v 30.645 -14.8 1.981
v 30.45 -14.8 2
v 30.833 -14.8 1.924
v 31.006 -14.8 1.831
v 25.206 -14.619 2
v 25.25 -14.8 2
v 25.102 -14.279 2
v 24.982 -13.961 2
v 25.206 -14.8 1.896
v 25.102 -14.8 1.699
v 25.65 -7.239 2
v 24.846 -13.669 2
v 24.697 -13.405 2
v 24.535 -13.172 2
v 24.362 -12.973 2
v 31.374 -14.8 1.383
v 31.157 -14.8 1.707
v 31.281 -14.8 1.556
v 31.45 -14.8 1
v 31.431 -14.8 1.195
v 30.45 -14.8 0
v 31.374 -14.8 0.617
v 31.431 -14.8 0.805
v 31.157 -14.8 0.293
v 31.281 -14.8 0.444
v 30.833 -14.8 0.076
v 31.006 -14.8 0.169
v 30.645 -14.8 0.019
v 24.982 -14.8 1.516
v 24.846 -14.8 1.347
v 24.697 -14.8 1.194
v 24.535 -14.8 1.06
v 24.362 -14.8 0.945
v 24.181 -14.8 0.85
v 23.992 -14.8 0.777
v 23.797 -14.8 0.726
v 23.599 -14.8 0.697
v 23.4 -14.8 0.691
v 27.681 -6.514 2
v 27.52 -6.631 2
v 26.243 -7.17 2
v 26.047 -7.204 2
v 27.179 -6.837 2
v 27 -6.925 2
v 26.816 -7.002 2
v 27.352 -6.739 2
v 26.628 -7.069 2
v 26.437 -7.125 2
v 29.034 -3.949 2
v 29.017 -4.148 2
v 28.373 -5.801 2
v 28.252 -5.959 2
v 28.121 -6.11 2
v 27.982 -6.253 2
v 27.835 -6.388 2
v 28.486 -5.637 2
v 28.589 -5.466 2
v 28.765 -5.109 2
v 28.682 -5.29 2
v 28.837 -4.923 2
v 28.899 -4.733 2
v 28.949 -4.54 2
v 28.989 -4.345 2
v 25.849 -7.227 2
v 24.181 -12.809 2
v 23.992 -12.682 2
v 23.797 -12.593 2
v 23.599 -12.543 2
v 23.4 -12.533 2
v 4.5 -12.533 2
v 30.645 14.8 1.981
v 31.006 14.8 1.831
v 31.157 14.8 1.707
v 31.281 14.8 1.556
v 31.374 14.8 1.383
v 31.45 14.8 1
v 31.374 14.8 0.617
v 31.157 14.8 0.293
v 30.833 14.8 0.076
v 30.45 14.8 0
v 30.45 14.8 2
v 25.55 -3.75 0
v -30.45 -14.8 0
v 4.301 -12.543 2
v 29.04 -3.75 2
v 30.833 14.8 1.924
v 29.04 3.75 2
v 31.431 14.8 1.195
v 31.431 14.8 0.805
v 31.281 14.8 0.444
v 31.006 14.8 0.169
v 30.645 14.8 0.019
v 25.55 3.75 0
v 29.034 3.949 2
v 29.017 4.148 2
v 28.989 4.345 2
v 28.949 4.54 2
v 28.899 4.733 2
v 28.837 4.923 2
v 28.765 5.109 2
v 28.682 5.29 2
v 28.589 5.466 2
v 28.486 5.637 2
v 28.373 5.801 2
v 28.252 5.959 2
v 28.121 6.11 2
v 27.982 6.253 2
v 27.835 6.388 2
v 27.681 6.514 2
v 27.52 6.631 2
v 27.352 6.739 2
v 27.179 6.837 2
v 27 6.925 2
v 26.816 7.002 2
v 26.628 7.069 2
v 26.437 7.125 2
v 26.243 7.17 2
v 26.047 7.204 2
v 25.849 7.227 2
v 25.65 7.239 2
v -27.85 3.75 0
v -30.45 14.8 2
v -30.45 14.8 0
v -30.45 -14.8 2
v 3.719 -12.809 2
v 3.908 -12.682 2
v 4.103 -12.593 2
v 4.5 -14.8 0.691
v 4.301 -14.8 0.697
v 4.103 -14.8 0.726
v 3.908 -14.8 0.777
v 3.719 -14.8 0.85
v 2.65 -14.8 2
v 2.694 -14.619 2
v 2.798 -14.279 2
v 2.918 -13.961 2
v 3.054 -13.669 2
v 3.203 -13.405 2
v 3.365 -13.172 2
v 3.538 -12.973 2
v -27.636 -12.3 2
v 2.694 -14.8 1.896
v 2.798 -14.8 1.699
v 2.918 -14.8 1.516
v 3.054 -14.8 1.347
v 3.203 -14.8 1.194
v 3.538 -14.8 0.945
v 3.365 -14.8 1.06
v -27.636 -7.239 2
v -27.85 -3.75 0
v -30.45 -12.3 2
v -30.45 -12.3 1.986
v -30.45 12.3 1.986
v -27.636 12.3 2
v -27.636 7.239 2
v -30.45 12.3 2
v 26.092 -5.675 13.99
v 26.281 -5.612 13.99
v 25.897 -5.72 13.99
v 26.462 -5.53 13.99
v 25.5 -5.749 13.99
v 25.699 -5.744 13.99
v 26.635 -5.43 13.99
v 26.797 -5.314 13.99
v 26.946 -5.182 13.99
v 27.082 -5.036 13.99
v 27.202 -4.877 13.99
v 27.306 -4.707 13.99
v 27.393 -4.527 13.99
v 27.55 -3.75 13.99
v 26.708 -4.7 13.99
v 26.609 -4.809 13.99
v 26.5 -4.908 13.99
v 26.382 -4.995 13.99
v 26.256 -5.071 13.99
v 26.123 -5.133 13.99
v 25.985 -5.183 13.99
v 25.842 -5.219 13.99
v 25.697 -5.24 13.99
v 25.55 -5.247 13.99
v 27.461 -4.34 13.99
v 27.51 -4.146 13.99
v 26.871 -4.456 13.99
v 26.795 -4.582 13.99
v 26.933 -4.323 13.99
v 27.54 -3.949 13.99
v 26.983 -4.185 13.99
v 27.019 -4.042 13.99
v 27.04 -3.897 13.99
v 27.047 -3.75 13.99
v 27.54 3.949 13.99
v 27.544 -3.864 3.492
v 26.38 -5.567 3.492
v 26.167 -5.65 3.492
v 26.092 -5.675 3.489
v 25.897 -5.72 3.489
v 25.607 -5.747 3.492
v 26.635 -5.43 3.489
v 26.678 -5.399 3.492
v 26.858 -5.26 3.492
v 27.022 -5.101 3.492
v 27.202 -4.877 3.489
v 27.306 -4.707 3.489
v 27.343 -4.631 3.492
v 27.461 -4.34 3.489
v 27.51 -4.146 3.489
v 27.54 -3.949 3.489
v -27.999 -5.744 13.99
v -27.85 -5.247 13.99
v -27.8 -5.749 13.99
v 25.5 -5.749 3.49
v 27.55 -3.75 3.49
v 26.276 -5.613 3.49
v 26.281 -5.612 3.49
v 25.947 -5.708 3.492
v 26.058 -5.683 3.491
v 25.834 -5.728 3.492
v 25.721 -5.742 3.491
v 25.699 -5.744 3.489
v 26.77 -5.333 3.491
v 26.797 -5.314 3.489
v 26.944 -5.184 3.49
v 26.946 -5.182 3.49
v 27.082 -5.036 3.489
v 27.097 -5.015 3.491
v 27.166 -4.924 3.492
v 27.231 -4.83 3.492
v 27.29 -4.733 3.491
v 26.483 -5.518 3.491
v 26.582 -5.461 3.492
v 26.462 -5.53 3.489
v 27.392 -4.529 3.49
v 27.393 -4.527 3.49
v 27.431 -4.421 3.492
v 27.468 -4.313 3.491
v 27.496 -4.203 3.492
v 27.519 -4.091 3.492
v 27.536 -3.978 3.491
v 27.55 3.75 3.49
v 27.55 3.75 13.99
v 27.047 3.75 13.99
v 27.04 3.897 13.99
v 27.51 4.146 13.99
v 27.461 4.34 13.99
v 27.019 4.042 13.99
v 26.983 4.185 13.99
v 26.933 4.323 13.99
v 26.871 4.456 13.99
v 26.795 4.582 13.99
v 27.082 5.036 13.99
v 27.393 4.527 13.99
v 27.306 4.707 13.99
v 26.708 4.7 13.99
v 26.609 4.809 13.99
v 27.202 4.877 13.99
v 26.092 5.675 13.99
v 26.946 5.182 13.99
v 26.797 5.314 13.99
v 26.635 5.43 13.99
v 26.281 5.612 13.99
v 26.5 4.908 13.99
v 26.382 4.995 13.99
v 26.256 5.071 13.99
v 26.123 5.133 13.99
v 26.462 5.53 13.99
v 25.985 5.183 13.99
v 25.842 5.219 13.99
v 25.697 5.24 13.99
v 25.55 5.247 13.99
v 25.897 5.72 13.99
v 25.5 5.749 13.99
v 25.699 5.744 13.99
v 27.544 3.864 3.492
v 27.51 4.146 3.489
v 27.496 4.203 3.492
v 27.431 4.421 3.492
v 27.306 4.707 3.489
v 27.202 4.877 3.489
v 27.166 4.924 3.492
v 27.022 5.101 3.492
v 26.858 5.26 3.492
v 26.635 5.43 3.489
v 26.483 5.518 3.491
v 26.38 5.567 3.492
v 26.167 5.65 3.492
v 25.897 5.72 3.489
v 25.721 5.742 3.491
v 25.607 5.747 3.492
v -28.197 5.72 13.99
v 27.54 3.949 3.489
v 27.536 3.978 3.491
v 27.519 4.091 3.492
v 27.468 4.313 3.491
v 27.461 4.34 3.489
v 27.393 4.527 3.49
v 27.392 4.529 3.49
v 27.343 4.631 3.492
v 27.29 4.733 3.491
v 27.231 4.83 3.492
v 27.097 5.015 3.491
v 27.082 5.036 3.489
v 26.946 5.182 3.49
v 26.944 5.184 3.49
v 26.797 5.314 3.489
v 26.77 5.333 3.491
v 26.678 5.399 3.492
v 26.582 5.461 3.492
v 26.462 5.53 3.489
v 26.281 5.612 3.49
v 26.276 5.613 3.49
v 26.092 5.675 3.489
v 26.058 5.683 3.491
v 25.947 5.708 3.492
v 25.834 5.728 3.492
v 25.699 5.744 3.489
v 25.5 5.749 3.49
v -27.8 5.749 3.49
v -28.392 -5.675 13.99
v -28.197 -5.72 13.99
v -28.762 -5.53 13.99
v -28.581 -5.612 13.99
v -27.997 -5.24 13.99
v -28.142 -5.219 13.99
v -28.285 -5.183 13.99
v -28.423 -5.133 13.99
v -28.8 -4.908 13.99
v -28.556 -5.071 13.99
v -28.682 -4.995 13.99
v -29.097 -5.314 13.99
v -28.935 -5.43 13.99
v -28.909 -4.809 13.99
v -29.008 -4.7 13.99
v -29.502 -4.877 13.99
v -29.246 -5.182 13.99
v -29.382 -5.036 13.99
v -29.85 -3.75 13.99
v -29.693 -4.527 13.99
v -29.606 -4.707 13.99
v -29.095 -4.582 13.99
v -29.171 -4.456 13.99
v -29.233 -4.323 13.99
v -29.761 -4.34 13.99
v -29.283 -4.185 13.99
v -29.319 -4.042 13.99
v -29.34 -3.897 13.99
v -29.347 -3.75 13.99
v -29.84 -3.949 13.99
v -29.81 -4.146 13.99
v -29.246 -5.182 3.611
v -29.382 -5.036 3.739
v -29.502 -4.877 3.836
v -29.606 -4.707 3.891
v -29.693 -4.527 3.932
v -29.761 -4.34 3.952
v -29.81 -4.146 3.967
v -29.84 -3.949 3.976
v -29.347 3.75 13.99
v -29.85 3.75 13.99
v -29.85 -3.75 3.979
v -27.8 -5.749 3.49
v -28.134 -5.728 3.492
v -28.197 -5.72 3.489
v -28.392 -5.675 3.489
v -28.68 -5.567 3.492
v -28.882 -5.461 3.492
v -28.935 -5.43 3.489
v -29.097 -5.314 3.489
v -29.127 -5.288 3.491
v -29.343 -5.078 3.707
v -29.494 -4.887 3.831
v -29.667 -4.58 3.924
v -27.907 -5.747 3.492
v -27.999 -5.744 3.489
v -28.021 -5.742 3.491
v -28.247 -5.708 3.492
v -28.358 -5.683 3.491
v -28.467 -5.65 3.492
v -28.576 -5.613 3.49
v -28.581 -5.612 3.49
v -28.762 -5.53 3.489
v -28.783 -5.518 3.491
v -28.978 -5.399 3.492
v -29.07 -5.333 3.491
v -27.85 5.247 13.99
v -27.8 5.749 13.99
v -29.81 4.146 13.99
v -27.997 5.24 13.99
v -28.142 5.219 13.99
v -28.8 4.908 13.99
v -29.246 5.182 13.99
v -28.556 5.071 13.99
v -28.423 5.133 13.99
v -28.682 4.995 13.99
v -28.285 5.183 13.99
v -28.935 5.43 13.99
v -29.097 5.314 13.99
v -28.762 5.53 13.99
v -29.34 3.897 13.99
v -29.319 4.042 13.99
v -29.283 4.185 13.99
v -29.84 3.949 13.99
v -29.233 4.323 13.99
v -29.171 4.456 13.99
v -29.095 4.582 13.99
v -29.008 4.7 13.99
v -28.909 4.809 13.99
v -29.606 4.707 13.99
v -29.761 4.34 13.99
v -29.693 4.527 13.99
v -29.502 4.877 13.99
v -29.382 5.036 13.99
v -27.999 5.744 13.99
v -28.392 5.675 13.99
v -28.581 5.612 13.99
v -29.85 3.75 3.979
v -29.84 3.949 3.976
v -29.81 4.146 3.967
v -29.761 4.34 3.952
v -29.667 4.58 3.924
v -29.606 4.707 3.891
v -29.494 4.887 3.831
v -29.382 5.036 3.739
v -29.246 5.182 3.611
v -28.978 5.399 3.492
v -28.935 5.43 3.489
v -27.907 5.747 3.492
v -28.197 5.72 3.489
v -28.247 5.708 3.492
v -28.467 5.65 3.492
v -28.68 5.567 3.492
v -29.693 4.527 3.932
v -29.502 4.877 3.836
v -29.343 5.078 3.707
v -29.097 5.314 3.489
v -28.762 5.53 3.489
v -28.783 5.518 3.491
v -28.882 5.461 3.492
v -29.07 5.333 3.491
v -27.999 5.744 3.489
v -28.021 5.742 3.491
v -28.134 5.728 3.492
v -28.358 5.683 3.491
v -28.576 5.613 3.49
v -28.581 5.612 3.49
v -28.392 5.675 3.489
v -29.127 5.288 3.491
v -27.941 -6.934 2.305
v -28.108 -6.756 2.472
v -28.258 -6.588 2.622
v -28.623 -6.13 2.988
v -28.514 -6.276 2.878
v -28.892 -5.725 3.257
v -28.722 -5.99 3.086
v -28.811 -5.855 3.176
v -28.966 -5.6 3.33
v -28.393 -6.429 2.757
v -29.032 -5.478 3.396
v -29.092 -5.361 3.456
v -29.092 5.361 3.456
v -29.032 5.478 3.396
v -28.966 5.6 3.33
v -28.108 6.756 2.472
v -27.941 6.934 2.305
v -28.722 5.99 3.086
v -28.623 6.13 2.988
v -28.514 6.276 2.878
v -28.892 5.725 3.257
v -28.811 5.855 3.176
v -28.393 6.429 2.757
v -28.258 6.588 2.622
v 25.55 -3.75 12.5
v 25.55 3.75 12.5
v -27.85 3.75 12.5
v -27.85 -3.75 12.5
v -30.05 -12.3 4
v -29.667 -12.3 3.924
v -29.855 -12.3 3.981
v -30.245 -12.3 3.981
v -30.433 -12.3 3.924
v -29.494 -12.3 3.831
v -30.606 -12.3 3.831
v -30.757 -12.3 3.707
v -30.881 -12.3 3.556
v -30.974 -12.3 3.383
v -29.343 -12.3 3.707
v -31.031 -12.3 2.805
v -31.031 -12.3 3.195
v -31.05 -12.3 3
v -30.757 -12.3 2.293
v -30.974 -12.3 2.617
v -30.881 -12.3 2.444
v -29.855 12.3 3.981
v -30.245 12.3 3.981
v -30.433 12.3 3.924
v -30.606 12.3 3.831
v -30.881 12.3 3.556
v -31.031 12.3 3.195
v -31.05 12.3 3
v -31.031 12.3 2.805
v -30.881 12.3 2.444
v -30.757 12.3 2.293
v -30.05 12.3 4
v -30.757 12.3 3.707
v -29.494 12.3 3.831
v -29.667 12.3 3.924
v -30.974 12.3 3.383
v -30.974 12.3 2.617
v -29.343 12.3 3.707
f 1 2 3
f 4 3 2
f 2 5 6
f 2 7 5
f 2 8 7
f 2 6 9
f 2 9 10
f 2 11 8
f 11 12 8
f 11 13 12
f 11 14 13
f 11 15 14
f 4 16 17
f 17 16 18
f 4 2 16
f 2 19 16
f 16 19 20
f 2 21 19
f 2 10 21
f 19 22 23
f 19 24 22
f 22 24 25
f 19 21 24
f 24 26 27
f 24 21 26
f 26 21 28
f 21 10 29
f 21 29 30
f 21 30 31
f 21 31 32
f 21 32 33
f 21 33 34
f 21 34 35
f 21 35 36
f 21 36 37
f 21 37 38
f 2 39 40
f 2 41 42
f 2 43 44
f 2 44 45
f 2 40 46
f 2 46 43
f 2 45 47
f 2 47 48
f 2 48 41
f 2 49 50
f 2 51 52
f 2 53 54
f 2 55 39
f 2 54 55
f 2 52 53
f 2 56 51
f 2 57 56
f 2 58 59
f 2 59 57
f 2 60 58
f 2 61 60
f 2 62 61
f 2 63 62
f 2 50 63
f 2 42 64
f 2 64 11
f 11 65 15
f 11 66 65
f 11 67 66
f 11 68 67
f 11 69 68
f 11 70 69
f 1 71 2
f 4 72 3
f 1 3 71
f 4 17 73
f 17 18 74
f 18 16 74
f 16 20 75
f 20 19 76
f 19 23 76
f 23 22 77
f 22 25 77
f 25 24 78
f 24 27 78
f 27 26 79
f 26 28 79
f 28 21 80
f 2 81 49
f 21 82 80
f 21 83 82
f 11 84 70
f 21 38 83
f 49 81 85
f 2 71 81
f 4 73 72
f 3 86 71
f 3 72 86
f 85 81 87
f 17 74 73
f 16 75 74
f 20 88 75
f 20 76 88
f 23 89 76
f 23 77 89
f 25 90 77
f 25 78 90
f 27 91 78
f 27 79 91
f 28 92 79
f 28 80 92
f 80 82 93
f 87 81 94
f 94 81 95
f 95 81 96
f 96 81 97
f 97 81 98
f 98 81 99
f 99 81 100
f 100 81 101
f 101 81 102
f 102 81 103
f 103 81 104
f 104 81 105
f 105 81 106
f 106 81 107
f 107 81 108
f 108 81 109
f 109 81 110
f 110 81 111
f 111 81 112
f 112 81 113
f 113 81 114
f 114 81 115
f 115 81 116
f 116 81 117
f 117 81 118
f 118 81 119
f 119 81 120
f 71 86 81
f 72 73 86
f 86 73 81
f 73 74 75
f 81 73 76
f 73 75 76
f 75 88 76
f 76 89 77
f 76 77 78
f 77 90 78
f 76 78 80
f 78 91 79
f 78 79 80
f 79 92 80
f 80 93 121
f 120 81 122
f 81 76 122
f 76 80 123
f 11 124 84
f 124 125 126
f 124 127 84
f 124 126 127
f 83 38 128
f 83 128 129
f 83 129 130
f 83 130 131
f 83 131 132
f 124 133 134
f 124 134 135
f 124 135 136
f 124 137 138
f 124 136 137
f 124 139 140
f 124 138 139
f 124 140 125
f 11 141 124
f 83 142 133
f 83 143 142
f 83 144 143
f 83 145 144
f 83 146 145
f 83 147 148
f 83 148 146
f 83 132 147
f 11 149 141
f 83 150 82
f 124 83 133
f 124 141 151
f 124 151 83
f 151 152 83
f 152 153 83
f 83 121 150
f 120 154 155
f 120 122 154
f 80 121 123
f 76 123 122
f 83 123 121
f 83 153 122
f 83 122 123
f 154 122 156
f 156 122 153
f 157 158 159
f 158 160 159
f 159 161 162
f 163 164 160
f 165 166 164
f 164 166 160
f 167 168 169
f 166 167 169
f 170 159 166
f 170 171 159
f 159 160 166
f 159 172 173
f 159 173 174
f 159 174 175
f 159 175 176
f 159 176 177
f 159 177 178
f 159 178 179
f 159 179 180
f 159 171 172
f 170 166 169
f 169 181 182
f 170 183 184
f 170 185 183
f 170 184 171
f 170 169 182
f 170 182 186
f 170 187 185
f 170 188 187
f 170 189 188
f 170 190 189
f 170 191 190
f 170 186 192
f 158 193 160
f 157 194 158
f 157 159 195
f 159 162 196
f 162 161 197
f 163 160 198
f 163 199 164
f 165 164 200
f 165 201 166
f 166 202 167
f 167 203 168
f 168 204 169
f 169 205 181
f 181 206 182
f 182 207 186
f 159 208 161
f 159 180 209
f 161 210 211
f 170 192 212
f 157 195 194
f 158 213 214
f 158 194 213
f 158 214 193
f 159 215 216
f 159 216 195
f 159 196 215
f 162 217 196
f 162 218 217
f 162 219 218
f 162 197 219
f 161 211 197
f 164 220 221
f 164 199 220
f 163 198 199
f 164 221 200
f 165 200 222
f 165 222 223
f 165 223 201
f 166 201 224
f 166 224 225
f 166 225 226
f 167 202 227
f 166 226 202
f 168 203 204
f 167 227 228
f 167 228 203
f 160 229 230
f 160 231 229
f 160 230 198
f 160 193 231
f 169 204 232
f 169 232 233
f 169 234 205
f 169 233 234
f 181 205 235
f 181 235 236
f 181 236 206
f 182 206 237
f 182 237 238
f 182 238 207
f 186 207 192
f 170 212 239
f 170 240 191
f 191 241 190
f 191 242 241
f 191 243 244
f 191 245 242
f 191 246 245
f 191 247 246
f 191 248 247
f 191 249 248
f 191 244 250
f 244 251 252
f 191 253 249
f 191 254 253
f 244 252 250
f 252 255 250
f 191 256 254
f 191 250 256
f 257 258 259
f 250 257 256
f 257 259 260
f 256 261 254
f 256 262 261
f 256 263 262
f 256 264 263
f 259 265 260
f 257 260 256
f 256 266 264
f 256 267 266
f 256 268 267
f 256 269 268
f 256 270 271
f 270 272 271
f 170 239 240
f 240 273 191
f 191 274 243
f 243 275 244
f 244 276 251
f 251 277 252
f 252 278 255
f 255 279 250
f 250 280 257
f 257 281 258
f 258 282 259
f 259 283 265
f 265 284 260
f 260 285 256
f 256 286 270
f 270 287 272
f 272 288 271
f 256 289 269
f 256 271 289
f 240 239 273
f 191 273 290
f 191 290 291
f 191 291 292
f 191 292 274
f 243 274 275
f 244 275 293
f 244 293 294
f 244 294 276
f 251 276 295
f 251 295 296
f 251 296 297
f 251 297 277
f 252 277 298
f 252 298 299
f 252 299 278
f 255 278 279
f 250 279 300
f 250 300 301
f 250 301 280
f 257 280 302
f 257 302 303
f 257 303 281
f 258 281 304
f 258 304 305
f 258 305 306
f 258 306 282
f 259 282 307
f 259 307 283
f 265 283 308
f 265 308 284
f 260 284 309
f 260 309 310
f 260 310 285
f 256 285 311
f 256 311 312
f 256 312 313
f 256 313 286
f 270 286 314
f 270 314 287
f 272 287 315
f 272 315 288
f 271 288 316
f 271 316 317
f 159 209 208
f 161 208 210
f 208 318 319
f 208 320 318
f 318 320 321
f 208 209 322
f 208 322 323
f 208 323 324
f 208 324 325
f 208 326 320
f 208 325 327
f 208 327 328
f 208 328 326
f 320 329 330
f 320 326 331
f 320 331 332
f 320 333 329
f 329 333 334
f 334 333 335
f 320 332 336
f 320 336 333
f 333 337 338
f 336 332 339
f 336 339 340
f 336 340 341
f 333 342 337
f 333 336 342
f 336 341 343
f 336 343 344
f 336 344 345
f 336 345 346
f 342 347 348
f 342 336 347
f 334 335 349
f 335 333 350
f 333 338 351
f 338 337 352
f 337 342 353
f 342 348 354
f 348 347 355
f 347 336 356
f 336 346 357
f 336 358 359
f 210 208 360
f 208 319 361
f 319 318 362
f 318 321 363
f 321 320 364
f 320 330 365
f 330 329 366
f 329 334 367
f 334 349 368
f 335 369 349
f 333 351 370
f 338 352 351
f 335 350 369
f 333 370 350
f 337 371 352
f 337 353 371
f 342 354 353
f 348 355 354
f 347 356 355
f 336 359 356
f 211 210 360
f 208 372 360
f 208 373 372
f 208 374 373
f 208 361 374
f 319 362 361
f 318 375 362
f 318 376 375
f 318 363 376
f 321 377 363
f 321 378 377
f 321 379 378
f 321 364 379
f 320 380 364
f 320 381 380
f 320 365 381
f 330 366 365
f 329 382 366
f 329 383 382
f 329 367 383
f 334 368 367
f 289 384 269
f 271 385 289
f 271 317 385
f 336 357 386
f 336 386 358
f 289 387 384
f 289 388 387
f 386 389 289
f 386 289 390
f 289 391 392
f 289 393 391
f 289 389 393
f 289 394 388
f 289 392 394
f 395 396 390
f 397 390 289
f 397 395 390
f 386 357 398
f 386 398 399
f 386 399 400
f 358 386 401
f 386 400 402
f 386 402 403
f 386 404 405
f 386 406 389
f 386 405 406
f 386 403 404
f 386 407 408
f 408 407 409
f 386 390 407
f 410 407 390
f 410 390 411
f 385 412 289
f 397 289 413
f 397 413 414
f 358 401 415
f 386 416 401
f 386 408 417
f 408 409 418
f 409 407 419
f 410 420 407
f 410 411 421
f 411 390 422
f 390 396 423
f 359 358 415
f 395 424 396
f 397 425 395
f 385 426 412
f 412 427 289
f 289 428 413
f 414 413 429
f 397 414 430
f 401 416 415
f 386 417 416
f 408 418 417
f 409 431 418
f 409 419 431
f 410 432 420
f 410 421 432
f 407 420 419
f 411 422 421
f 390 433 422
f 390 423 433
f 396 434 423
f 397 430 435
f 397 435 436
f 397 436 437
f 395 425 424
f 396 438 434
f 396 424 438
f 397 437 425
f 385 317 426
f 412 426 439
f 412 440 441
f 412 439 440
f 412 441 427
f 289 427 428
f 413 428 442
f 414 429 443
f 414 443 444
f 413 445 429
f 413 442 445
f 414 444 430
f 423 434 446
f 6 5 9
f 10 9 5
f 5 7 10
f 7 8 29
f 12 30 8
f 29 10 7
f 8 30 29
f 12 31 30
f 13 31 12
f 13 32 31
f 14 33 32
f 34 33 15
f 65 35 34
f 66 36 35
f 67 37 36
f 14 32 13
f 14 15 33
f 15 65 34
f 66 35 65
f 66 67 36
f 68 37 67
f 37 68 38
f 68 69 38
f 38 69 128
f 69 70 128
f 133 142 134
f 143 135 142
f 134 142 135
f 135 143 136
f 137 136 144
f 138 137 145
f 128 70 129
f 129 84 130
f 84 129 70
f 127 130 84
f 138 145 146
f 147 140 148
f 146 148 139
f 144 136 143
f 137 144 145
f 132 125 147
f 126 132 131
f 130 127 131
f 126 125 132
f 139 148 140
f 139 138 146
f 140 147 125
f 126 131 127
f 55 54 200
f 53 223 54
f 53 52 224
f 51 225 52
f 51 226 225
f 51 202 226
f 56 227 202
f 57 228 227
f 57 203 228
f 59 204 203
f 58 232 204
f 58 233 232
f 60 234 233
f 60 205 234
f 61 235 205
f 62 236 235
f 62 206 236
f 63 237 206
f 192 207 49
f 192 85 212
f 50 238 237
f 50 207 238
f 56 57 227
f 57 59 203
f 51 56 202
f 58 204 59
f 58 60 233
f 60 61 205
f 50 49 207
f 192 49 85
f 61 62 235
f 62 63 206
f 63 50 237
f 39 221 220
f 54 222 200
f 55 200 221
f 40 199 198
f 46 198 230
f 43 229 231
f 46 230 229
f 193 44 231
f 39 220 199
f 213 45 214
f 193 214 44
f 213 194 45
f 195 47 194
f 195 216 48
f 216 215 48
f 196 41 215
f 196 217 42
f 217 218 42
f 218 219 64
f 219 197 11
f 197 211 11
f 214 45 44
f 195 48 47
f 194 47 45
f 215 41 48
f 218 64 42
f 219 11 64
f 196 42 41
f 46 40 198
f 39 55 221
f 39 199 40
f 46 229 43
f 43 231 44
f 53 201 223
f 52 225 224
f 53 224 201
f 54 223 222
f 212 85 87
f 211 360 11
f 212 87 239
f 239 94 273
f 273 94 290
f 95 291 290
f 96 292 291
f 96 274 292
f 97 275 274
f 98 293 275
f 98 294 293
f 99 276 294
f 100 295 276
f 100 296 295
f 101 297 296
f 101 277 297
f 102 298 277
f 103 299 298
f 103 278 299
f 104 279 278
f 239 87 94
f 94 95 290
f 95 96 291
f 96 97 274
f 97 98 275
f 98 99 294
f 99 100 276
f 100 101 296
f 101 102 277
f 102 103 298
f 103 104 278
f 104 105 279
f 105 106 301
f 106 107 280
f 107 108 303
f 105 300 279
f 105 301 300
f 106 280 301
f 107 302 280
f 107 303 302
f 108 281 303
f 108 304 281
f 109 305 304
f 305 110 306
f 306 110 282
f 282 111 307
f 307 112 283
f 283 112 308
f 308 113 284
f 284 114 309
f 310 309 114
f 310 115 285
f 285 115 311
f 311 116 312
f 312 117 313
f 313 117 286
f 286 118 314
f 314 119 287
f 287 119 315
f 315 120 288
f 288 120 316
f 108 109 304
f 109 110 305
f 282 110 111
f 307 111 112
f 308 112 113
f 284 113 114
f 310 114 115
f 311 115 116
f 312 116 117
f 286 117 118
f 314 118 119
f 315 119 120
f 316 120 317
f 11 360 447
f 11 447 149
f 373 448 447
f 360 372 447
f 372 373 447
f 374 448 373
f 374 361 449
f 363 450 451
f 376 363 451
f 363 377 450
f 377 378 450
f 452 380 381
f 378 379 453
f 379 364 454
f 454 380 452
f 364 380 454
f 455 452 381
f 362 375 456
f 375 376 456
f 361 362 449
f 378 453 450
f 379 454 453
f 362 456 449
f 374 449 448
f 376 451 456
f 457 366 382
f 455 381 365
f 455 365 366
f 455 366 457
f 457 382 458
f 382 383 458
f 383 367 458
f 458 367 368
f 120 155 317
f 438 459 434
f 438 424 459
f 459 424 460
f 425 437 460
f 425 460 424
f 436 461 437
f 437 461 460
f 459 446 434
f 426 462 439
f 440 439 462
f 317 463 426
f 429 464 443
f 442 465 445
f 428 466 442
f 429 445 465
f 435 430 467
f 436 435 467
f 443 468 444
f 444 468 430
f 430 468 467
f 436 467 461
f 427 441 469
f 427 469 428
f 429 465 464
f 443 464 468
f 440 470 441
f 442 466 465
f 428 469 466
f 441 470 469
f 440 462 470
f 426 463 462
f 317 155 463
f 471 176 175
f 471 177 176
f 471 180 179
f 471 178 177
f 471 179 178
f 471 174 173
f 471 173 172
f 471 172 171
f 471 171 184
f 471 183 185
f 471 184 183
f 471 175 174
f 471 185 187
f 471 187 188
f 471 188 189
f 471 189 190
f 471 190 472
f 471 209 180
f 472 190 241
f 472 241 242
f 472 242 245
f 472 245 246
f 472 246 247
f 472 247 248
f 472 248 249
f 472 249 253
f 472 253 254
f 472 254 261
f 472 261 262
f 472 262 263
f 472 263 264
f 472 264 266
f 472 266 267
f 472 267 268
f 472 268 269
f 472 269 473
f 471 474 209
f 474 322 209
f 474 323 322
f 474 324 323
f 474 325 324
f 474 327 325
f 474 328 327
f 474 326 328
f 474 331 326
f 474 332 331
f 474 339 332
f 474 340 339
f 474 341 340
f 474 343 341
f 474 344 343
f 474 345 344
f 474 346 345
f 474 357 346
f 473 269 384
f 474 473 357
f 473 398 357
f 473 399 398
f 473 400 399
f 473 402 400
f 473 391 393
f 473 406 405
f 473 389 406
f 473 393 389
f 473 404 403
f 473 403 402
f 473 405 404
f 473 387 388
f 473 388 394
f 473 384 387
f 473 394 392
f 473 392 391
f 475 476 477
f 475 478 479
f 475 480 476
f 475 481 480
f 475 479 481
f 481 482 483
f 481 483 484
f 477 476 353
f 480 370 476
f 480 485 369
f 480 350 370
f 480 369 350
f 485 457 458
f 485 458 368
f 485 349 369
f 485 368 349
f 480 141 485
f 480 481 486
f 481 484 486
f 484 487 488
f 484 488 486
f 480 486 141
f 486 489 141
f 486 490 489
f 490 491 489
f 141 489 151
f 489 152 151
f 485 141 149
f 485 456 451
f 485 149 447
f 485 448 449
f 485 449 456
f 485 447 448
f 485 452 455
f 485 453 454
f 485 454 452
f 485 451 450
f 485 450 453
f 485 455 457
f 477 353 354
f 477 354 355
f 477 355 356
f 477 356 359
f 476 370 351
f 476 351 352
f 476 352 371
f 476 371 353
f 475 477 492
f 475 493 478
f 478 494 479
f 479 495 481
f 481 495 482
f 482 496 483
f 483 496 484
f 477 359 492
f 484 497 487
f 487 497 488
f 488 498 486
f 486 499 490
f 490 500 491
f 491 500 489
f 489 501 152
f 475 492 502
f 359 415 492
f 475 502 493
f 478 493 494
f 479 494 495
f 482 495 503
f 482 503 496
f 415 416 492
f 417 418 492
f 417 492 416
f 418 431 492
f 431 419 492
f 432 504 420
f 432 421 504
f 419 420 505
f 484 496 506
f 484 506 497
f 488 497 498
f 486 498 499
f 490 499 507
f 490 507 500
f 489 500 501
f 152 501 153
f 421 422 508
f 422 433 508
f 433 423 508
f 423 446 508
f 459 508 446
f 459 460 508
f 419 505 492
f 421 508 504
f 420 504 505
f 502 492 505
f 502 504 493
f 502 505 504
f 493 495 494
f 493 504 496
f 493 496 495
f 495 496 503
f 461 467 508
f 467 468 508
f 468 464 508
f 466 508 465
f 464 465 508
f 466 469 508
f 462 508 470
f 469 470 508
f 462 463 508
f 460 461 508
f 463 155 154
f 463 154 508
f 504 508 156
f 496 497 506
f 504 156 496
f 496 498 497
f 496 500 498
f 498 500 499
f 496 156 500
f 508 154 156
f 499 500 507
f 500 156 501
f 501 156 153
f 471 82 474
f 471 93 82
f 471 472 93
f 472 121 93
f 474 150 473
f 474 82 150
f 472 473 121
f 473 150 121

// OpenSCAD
/* 3d-printable enclosure for MiniNDP - github.com/bkw777/NODE_DATAPAC */
// version: 003

// ------------------------------------------------------------------------------
// options

Customizer_Note = "";

// ------------------------------------------------------------------------------

plate_width = 61.3;              // 0.1
plate_depth = 30;                // 0.1
plate_thickness = 2;             // 0.1
plate_fitment_clearance = 0.2;   // 0.1

pc = plate_fitment_clearance;
pw = plate_width - pc*2;
pd = plate_depth - pc*2;
ph = plate_thickness;

bus_width = 51;                  // 0.1
bus_depth = 5.1;                 // 0.1
bus_height = 12;                 // 0.1
bus_wall_thickness = 2;          // 0.1
bus_fitment_clearance = 1.2;     // 0.1
bus_x = 3.8;                     // 0.1
bus_y = 0;                       // 0.1
bus_base_chamfer = 1.5;          // 0.1
bus_funnel = 1.5;                // 0.1

bc = bus_fitment_clearance;
bt = bus_wall_thickness;
bw = bus_width + bc*2;
bd = bus_depth + bc*2;
bh = bus_height;
bch = bt + bus_base_chamfer;

//bx = bus_x;
bx = pw/2-bw/2-bus_x+bc;
by = bus_y;

finger_pull_width = 19;         // 0.1

// arc smoothness - comment both out before importing into FreeCAD
$fs = 0.2;
$fa = 1;

e = 0.01; // epsilon

// ---------------------------------------------------------------

module mirror_copy(v) {
 children();
 mirror(v) children();
}

module c4 (w,d,h,r,r1,r2) {
  ra = r ? r : r1;
  rb = r ? r : r2;
  hull()
    mirror_copy([0,1,0])
      translate([0,d/2,0])
        mirror_copy([1,0,0])
          translate([w/2,0,0])
            cylinder(h=h,r1=ra,r2=rb);
}

module M10_bus_filler_plate () {

  th = bh + ph;

  difference() {
    group() {
      
      // plate
      hull() {
        // main plate
        translate([0,0,ph/2])
          cube([pw,pd,ph],center=true);
        // outboard retainer
        translate([-pw/2,0,ph/2])
          rotate([90,0,0])
            cylinder(h=pd,d=ph,center=true);
      }
      
      // inboard retainer
      translate([-0.4,0,0])
      hull() {
        l = pd-5;
        translate([pw/2,0,-ph/2])
          rotate([90,0,0])
            cylinder(h=l,d=ph,center=true);
        translate([pw/2-ph,0,ph/2])
          rotate([90,0,0])
            cylinder(h=l,d=ph,center=true);
      }

      // tunnel
      translate([bx,by,0]) {
        translate([0,0,-bh+e])
        c4(w=bw,d=bd,h=bh,r=bt);

        // tunnel base chamfer
        difference() {
          // add chamfer
          translate([0,0,-bch+e])
            c4(w=bw,d=bd,h=bch,r1=0,r2=bch);
          // cut the edge off that pokes out the end
          translate([bch/2+1+bw/2+bt-e,0,0])
            cube([bch+2,bd+bch*2+2,bch+2],center=true);
       }
      }
     
    }

    group() {
      // tunnel
      translate([bx,by,-th/2+ph])
        cube([bw,bd,th+2],center=true);

      // funnel
      translate([bx,by,-bh-bt+bus_funnel])
        c4(w=bw,d=bd,h=bt,r1=bt+e,r2=0);

      // finger pull
      translate([finger_pull_width/2-pw/2+7,-pd/2,-ph/2])
        rotate([60,0,0])
          hull()
            mirror_copy([1,0,0])
              translate([finger_pull_width/2,0,0])
                cylinder(h=10,r=ph,center=true);
    }
  }
    
}

ry = $preview ? 0 : 180 ;
tz = $preview ? 0 : ph ;
translate([0,0,tz]) rotate([0,ry,0]) M10_bus_filler_plate();
